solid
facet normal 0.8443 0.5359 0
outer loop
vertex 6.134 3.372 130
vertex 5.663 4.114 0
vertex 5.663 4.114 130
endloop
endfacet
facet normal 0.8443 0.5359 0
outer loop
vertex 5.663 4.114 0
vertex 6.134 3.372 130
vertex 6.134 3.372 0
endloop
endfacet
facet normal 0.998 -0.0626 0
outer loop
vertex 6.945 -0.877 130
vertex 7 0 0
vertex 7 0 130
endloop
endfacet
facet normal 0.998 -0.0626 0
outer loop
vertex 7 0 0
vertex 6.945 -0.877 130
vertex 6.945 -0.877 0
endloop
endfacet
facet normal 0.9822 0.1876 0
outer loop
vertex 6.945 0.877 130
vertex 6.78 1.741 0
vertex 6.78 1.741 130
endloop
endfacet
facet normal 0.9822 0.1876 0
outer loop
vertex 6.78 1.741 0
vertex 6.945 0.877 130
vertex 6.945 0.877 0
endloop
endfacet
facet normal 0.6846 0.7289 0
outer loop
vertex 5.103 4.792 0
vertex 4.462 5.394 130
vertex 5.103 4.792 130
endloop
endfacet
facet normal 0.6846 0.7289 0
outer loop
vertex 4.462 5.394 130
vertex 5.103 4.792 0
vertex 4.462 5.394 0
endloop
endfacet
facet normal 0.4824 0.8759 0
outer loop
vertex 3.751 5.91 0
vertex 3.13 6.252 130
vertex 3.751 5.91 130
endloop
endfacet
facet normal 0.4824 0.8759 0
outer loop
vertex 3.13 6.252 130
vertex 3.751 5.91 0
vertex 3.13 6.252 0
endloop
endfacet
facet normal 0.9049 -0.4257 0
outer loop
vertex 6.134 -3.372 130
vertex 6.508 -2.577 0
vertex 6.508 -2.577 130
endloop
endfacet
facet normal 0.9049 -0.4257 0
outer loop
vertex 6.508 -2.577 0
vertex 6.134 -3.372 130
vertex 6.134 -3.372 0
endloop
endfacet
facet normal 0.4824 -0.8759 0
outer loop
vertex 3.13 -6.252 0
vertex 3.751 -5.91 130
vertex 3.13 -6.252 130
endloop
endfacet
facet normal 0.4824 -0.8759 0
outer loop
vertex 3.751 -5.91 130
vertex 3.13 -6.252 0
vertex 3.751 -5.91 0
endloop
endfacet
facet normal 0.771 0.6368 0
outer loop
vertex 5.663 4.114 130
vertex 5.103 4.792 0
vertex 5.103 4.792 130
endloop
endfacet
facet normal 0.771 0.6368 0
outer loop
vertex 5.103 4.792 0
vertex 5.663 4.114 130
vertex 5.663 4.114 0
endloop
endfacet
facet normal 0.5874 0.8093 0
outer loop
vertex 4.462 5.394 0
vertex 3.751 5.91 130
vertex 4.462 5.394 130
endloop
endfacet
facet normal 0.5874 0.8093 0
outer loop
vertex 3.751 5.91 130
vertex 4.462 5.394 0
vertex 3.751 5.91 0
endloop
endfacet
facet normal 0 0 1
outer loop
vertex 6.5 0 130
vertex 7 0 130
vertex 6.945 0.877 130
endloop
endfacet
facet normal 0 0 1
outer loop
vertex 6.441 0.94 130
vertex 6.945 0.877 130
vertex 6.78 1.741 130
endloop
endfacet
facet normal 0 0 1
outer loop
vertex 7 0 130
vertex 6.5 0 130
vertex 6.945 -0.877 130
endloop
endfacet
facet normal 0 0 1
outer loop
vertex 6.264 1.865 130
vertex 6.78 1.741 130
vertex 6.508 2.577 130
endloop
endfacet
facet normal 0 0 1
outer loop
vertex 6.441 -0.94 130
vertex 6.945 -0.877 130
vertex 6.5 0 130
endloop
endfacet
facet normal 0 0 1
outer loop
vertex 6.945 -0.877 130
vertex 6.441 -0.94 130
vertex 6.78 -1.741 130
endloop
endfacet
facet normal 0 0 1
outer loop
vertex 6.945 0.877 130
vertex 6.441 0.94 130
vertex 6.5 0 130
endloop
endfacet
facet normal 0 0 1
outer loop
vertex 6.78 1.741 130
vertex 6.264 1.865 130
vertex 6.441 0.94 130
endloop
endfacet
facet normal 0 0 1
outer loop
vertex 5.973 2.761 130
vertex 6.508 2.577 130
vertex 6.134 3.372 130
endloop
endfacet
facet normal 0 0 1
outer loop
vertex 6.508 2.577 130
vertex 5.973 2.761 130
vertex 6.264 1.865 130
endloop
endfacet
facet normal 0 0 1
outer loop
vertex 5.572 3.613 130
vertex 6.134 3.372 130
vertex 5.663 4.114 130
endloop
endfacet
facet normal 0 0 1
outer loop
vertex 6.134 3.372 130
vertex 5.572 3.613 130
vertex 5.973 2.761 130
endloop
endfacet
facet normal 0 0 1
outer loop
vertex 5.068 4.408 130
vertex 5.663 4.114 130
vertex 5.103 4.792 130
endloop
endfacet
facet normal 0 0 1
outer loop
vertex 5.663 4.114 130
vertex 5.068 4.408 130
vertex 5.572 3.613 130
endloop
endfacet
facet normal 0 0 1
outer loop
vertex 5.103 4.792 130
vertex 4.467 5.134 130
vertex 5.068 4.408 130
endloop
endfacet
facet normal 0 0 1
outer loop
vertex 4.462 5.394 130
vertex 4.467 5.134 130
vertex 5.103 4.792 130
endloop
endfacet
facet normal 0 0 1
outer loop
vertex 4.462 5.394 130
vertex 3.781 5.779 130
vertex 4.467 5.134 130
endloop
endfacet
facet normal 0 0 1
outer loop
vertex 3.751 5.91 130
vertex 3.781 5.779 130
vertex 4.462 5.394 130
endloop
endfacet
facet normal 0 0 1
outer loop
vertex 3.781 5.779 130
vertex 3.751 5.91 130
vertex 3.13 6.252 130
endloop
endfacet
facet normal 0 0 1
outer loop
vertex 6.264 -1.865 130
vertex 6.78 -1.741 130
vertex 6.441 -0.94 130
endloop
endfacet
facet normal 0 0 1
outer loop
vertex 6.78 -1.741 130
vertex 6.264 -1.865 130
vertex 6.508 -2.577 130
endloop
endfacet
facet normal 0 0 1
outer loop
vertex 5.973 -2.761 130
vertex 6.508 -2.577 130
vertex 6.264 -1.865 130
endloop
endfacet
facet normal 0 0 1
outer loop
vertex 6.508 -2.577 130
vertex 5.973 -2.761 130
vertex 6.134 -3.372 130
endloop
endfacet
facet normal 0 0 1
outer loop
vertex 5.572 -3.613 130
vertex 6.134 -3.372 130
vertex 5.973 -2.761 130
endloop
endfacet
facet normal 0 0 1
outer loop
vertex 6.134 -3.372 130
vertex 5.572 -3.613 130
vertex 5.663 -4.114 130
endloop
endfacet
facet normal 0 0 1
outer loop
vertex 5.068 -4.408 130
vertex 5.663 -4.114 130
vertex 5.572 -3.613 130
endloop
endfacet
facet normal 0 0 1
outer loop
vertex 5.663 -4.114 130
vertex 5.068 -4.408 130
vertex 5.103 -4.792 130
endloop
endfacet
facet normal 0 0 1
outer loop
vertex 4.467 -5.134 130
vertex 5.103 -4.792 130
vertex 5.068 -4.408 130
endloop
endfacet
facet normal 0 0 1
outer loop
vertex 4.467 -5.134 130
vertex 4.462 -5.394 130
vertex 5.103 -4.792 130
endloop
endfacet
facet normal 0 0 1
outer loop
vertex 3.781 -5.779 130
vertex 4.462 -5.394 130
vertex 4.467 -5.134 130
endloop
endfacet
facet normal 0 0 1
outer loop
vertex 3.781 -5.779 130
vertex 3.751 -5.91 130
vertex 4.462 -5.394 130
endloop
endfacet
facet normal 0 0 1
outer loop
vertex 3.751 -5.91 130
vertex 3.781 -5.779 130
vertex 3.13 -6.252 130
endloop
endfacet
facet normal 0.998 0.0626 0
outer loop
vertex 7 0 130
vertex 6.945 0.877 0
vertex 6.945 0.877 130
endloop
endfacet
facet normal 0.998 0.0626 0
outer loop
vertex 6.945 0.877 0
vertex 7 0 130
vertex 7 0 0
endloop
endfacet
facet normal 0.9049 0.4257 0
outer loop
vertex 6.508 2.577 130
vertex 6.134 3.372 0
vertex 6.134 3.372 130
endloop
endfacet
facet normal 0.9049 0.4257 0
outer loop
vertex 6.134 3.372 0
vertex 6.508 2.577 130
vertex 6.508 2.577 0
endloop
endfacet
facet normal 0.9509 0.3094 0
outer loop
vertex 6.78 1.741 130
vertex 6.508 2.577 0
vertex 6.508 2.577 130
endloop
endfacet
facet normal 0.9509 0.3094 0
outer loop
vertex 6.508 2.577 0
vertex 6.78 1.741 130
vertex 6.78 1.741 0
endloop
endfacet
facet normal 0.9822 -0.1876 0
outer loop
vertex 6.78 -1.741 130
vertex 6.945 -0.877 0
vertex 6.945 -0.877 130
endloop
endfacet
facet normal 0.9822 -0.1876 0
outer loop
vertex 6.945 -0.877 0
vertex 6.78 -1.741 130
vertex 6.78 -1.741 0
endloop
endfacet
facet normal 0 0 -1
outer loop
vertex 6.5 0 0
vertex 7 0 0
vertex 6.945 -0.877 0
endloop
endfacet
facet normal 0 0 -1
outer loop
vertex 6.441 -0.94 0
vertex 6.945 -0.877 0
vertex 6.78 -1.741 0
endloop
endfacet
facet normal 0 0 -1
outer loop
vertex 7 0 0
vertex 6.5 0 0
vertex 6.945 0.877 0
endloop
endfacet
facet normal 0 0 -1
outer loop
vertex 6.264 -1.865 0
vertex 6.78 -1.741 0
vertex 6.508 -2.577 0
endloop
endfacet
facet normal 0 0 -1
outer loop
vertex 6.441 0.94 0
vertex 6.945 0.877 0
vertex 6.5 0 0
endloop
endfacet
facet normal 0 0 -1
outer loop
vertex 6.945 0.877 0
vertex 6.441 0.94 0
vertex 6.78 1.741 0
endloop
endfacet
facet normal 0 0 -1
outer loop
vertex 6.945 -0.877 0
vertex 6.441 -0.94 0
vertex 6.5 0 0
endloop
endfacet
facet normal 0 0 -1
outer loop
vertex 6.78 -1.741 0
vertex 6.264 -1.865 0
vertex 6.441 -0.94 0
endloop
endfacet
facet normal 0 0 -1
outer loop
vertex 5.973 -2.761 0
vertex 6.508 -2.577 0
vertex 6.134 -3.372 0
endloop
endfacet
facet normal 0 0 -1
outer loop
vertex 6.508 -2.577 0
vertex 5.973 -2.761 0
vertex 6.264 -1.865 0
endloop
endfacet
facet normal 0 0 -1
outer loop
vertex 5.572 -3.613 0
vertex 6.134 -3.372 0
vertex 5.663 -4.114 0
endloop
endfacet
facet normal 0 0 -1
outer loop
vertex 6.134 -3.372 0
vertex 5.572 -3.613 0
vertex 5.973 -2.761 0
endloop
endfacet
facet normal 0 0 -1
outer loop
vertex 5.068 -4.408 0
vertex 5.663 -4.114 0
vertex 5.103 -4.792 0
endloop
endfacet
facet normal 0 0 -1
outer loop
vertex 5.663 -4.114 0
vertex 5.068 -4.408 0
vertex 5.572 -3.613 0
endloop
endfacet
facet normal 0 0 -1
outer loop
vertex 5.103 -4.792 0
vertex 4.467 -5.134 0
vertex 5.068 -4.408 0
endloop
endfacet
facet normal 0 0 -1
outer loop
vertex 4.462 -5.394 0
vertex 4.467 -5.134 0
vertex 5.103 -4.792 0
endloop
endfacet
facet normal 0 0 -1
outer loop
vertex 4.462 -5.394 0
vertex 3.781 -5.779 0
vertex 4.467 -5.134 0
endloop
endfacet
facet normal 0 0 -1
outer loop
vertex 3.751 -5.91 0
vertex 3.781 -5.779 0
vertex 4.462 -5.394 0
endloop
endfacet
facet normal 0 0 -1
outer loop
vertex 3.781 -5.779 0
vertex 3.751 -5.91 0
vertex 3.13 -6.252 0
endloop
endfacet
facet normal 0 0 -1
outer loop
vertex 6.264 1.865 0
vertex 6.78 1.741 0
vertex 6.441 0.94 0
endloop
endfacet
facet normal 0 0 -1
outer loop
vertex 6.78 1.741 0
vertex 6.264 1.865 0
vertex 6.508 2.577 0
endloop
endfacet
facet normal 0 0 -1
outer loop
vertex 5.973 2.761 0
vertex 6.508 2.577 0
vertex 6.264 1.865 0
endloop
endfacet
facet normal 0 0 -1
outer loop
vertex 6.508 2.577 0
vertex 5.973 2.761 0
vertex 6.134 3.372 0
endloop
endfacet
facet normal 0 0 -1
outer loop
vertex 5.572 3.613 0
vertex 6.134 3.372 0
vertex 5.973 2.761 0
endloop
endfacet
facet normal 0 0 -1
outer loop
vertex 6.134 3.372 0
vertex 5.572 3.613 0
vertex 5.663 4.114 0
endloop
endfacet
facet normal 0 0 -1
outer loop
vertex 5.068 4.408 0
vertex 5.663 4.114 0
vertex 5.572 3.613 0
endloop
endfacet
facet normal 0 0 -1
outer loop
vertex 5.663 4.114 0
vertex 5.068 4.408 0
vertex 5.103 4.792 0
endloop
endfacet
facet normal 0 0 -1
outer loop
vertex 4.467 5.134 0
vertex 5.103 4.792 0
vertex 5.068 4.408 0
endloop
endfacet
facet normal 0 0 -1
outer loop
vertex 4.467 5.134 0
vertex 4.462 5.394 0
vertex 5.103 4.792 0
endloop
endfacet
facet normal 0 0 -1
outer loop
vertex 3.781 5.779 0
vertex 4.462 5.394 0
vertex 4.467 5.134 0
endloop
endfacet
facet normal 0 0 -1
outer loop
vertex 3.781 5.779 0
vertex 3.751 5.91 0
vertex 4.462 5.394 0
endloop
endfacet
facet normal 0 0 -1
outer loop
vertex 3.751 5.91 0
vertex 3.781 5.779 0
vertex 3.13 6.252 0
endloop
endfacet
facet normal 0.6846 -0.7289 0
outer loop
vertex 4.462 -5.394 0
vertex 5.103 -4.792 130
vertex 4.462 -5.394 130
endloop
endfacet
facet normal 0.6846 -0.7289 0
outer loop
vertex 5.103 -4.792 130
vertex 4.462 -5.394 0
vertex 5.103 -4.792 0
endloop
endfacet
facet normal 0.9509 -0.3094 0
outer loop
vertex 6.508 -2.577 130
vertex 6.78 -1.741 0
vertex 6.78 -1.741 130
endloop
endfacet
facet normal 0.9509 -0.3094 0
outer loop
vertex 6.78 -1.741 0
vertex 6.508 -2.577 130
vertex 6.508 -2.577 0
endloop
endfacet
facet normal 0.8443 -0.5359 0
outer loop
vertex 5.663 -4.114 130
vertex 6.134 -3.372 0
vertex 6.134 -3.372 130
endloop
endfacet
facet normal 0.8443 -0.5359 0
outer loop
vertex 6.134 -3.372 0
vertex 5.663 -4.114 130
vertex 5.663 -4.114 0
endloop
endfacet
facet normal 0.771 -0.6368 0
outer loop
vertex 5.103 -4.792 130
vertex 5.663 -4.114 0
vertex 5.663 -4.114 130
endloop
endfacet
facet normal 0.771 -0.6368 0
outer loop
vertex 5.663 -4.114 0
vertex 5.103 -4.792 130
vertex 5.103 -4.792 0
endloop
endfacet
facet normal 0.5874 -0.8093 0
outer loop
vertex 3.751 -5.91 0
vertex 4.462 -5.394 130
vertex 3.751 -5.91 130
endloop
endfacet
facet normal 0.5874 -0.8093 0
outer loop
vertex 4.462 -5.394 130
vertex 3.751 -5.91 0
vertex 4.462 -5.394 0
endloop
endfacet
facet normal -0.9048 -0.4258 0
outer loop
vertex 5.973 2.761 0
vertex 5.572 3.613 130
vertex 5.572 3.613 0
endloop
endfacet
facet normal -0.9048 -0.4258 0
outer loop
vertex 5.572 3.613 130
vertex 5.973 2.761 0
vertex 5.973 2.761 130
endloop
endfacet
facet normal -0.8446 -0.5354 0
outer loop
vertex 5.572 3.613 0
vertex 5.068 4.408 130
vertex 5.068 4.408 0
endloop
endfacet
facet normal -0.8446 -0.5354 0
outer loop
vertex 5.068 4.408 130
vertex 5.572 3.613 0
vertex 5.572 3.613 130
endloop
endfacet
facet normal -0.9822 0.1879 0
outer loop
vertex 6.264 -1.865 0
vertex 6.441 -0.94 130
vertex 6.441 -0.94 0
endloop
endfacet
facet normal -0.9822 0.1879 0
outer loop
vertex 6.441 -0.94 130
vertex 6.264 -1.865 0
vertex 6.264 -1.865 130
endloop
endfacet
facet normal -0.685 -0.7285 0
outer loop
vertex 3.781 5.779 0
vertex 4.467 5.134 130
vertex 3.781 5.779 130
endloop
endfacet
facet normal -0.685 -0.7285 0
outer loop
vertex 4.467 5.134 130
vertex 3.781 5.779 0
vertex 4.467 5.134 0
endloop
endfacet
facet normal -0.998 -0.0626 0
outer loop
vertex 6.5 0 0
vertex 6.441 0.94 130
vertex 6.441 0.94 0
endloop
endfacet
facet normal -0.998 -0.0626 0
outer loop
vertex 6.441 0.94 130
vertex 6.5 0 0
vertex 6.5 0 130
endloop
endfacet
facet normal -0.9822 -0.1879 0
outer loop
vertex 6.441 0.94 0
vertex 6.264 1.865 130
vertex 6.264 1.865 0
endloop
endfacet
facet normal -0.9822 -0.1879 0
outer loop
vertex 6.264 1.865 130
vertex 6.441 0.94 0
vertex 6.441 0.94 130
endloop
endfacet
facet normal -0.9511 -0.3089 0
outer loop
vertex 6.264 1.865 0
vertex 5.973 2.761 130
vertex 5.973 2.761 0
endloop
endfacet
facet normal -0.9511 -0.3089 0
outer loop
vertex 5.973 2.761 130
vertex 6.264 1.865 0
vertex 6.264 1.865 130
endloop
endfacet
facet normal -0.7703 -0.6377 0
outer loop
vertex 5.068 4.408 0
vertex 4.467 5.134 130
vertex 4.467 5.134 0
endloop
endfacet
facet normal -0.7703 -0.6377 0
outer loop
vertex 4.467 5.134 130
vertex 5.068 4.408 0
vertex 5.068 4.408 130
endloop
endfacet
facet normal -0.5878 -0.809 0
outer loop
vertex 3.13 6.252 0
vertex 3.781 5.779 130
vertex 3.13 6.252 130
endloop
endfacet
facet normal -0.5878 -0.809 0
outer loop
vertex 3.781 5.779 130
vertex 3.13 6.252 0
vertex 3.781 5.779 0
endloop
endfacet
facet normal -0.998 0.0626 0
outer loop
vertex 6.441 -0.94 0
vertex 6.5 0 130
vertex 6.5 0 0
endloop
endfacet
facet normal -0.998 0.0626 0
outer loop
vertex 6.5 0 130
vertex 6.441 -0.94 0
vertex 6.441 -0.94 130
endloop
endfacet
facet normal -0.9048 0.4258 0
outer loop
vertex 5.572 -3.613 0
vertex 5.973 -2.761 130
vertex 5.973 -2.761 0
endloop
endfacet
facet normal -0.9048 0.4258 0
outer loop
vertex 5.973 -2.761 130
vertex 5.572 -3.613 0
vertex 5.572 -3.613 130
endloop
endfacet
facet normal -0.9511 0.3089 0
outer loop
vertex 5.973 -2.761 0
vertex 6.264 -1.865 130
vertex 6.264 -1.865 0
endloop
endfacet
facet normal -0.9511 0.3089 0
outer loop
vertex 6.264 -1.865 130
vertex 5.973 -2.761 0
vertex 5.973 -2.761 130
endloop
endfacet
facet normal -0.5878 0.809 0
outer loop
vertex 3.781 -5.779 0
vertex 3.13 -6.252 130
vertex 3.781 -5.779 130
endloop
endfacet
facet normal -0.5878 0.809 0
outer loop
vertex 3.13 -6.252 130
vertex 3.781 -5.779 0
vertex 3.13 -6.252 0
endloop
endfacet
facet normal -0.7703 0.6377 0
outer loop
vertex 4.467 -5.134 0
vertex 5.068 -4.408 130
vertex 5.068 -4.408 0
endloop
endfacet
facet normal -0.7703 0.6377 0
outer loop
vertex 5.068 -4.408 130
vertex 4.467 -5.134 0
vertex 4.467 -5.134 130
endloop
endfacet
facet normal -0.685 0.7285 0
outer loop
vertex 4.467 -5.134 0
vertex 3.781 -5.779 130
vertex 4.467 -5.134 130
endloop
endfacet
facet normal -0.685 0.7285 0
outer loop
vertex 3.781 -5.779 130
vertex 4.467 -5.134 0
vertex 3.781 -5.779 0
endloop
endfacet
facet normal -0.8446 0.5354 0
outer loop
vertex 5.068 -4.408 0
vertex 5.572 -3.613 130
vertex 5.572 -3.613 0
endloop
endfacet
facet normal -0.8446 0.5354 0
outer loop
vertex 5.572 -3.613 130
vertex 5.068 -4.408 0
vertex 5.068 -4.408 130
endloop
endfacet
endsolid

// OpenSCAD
$fn = 50;


difference() {
	union() {
		cylinder(h = 130, r = 7.0000000000);
		translate(v = [-4.0000000000, 0, 0]) {
			cylinder(h = 130, r = 7.0000000000);
		}
	}
	union() {
		cylinder(h = 130, r = 3.2500000000);
		cylinder(h = 130, r = 1.8000000000);
		cylinder(h = 130, r = 1.8000000000);
		cylinder(h = 130, r = 1.8000000000);
		translate(v = [-8.5000000000, 0, 0]) {
			hull() {
				translate(v = [-3.7500000000, 0.0000000000, 0]) {
					cylinder(h = 130, r = 7.5000000000);
				}
				translate(v = [3.7500000000, 0.0000000000, 0]) {
					cylinder(h = 130, r = 7.5000000000);
				}
				translate(v = [-3.7500000000, -0.0000000000, 0]) {
					cylinder(h = 130, r = 7.5000000000);
				}
				translate(v = [3.7500000000, -0.0000000000, 0]) {
					cylinder(h = 130, r = 7.5000000000);
				}
			}
		}
		translate(v = [-1.0000000000, 0, 0.0000000000]) {
			cylinder(h = 130, r = 7.5000000000);
		}
	}
}
